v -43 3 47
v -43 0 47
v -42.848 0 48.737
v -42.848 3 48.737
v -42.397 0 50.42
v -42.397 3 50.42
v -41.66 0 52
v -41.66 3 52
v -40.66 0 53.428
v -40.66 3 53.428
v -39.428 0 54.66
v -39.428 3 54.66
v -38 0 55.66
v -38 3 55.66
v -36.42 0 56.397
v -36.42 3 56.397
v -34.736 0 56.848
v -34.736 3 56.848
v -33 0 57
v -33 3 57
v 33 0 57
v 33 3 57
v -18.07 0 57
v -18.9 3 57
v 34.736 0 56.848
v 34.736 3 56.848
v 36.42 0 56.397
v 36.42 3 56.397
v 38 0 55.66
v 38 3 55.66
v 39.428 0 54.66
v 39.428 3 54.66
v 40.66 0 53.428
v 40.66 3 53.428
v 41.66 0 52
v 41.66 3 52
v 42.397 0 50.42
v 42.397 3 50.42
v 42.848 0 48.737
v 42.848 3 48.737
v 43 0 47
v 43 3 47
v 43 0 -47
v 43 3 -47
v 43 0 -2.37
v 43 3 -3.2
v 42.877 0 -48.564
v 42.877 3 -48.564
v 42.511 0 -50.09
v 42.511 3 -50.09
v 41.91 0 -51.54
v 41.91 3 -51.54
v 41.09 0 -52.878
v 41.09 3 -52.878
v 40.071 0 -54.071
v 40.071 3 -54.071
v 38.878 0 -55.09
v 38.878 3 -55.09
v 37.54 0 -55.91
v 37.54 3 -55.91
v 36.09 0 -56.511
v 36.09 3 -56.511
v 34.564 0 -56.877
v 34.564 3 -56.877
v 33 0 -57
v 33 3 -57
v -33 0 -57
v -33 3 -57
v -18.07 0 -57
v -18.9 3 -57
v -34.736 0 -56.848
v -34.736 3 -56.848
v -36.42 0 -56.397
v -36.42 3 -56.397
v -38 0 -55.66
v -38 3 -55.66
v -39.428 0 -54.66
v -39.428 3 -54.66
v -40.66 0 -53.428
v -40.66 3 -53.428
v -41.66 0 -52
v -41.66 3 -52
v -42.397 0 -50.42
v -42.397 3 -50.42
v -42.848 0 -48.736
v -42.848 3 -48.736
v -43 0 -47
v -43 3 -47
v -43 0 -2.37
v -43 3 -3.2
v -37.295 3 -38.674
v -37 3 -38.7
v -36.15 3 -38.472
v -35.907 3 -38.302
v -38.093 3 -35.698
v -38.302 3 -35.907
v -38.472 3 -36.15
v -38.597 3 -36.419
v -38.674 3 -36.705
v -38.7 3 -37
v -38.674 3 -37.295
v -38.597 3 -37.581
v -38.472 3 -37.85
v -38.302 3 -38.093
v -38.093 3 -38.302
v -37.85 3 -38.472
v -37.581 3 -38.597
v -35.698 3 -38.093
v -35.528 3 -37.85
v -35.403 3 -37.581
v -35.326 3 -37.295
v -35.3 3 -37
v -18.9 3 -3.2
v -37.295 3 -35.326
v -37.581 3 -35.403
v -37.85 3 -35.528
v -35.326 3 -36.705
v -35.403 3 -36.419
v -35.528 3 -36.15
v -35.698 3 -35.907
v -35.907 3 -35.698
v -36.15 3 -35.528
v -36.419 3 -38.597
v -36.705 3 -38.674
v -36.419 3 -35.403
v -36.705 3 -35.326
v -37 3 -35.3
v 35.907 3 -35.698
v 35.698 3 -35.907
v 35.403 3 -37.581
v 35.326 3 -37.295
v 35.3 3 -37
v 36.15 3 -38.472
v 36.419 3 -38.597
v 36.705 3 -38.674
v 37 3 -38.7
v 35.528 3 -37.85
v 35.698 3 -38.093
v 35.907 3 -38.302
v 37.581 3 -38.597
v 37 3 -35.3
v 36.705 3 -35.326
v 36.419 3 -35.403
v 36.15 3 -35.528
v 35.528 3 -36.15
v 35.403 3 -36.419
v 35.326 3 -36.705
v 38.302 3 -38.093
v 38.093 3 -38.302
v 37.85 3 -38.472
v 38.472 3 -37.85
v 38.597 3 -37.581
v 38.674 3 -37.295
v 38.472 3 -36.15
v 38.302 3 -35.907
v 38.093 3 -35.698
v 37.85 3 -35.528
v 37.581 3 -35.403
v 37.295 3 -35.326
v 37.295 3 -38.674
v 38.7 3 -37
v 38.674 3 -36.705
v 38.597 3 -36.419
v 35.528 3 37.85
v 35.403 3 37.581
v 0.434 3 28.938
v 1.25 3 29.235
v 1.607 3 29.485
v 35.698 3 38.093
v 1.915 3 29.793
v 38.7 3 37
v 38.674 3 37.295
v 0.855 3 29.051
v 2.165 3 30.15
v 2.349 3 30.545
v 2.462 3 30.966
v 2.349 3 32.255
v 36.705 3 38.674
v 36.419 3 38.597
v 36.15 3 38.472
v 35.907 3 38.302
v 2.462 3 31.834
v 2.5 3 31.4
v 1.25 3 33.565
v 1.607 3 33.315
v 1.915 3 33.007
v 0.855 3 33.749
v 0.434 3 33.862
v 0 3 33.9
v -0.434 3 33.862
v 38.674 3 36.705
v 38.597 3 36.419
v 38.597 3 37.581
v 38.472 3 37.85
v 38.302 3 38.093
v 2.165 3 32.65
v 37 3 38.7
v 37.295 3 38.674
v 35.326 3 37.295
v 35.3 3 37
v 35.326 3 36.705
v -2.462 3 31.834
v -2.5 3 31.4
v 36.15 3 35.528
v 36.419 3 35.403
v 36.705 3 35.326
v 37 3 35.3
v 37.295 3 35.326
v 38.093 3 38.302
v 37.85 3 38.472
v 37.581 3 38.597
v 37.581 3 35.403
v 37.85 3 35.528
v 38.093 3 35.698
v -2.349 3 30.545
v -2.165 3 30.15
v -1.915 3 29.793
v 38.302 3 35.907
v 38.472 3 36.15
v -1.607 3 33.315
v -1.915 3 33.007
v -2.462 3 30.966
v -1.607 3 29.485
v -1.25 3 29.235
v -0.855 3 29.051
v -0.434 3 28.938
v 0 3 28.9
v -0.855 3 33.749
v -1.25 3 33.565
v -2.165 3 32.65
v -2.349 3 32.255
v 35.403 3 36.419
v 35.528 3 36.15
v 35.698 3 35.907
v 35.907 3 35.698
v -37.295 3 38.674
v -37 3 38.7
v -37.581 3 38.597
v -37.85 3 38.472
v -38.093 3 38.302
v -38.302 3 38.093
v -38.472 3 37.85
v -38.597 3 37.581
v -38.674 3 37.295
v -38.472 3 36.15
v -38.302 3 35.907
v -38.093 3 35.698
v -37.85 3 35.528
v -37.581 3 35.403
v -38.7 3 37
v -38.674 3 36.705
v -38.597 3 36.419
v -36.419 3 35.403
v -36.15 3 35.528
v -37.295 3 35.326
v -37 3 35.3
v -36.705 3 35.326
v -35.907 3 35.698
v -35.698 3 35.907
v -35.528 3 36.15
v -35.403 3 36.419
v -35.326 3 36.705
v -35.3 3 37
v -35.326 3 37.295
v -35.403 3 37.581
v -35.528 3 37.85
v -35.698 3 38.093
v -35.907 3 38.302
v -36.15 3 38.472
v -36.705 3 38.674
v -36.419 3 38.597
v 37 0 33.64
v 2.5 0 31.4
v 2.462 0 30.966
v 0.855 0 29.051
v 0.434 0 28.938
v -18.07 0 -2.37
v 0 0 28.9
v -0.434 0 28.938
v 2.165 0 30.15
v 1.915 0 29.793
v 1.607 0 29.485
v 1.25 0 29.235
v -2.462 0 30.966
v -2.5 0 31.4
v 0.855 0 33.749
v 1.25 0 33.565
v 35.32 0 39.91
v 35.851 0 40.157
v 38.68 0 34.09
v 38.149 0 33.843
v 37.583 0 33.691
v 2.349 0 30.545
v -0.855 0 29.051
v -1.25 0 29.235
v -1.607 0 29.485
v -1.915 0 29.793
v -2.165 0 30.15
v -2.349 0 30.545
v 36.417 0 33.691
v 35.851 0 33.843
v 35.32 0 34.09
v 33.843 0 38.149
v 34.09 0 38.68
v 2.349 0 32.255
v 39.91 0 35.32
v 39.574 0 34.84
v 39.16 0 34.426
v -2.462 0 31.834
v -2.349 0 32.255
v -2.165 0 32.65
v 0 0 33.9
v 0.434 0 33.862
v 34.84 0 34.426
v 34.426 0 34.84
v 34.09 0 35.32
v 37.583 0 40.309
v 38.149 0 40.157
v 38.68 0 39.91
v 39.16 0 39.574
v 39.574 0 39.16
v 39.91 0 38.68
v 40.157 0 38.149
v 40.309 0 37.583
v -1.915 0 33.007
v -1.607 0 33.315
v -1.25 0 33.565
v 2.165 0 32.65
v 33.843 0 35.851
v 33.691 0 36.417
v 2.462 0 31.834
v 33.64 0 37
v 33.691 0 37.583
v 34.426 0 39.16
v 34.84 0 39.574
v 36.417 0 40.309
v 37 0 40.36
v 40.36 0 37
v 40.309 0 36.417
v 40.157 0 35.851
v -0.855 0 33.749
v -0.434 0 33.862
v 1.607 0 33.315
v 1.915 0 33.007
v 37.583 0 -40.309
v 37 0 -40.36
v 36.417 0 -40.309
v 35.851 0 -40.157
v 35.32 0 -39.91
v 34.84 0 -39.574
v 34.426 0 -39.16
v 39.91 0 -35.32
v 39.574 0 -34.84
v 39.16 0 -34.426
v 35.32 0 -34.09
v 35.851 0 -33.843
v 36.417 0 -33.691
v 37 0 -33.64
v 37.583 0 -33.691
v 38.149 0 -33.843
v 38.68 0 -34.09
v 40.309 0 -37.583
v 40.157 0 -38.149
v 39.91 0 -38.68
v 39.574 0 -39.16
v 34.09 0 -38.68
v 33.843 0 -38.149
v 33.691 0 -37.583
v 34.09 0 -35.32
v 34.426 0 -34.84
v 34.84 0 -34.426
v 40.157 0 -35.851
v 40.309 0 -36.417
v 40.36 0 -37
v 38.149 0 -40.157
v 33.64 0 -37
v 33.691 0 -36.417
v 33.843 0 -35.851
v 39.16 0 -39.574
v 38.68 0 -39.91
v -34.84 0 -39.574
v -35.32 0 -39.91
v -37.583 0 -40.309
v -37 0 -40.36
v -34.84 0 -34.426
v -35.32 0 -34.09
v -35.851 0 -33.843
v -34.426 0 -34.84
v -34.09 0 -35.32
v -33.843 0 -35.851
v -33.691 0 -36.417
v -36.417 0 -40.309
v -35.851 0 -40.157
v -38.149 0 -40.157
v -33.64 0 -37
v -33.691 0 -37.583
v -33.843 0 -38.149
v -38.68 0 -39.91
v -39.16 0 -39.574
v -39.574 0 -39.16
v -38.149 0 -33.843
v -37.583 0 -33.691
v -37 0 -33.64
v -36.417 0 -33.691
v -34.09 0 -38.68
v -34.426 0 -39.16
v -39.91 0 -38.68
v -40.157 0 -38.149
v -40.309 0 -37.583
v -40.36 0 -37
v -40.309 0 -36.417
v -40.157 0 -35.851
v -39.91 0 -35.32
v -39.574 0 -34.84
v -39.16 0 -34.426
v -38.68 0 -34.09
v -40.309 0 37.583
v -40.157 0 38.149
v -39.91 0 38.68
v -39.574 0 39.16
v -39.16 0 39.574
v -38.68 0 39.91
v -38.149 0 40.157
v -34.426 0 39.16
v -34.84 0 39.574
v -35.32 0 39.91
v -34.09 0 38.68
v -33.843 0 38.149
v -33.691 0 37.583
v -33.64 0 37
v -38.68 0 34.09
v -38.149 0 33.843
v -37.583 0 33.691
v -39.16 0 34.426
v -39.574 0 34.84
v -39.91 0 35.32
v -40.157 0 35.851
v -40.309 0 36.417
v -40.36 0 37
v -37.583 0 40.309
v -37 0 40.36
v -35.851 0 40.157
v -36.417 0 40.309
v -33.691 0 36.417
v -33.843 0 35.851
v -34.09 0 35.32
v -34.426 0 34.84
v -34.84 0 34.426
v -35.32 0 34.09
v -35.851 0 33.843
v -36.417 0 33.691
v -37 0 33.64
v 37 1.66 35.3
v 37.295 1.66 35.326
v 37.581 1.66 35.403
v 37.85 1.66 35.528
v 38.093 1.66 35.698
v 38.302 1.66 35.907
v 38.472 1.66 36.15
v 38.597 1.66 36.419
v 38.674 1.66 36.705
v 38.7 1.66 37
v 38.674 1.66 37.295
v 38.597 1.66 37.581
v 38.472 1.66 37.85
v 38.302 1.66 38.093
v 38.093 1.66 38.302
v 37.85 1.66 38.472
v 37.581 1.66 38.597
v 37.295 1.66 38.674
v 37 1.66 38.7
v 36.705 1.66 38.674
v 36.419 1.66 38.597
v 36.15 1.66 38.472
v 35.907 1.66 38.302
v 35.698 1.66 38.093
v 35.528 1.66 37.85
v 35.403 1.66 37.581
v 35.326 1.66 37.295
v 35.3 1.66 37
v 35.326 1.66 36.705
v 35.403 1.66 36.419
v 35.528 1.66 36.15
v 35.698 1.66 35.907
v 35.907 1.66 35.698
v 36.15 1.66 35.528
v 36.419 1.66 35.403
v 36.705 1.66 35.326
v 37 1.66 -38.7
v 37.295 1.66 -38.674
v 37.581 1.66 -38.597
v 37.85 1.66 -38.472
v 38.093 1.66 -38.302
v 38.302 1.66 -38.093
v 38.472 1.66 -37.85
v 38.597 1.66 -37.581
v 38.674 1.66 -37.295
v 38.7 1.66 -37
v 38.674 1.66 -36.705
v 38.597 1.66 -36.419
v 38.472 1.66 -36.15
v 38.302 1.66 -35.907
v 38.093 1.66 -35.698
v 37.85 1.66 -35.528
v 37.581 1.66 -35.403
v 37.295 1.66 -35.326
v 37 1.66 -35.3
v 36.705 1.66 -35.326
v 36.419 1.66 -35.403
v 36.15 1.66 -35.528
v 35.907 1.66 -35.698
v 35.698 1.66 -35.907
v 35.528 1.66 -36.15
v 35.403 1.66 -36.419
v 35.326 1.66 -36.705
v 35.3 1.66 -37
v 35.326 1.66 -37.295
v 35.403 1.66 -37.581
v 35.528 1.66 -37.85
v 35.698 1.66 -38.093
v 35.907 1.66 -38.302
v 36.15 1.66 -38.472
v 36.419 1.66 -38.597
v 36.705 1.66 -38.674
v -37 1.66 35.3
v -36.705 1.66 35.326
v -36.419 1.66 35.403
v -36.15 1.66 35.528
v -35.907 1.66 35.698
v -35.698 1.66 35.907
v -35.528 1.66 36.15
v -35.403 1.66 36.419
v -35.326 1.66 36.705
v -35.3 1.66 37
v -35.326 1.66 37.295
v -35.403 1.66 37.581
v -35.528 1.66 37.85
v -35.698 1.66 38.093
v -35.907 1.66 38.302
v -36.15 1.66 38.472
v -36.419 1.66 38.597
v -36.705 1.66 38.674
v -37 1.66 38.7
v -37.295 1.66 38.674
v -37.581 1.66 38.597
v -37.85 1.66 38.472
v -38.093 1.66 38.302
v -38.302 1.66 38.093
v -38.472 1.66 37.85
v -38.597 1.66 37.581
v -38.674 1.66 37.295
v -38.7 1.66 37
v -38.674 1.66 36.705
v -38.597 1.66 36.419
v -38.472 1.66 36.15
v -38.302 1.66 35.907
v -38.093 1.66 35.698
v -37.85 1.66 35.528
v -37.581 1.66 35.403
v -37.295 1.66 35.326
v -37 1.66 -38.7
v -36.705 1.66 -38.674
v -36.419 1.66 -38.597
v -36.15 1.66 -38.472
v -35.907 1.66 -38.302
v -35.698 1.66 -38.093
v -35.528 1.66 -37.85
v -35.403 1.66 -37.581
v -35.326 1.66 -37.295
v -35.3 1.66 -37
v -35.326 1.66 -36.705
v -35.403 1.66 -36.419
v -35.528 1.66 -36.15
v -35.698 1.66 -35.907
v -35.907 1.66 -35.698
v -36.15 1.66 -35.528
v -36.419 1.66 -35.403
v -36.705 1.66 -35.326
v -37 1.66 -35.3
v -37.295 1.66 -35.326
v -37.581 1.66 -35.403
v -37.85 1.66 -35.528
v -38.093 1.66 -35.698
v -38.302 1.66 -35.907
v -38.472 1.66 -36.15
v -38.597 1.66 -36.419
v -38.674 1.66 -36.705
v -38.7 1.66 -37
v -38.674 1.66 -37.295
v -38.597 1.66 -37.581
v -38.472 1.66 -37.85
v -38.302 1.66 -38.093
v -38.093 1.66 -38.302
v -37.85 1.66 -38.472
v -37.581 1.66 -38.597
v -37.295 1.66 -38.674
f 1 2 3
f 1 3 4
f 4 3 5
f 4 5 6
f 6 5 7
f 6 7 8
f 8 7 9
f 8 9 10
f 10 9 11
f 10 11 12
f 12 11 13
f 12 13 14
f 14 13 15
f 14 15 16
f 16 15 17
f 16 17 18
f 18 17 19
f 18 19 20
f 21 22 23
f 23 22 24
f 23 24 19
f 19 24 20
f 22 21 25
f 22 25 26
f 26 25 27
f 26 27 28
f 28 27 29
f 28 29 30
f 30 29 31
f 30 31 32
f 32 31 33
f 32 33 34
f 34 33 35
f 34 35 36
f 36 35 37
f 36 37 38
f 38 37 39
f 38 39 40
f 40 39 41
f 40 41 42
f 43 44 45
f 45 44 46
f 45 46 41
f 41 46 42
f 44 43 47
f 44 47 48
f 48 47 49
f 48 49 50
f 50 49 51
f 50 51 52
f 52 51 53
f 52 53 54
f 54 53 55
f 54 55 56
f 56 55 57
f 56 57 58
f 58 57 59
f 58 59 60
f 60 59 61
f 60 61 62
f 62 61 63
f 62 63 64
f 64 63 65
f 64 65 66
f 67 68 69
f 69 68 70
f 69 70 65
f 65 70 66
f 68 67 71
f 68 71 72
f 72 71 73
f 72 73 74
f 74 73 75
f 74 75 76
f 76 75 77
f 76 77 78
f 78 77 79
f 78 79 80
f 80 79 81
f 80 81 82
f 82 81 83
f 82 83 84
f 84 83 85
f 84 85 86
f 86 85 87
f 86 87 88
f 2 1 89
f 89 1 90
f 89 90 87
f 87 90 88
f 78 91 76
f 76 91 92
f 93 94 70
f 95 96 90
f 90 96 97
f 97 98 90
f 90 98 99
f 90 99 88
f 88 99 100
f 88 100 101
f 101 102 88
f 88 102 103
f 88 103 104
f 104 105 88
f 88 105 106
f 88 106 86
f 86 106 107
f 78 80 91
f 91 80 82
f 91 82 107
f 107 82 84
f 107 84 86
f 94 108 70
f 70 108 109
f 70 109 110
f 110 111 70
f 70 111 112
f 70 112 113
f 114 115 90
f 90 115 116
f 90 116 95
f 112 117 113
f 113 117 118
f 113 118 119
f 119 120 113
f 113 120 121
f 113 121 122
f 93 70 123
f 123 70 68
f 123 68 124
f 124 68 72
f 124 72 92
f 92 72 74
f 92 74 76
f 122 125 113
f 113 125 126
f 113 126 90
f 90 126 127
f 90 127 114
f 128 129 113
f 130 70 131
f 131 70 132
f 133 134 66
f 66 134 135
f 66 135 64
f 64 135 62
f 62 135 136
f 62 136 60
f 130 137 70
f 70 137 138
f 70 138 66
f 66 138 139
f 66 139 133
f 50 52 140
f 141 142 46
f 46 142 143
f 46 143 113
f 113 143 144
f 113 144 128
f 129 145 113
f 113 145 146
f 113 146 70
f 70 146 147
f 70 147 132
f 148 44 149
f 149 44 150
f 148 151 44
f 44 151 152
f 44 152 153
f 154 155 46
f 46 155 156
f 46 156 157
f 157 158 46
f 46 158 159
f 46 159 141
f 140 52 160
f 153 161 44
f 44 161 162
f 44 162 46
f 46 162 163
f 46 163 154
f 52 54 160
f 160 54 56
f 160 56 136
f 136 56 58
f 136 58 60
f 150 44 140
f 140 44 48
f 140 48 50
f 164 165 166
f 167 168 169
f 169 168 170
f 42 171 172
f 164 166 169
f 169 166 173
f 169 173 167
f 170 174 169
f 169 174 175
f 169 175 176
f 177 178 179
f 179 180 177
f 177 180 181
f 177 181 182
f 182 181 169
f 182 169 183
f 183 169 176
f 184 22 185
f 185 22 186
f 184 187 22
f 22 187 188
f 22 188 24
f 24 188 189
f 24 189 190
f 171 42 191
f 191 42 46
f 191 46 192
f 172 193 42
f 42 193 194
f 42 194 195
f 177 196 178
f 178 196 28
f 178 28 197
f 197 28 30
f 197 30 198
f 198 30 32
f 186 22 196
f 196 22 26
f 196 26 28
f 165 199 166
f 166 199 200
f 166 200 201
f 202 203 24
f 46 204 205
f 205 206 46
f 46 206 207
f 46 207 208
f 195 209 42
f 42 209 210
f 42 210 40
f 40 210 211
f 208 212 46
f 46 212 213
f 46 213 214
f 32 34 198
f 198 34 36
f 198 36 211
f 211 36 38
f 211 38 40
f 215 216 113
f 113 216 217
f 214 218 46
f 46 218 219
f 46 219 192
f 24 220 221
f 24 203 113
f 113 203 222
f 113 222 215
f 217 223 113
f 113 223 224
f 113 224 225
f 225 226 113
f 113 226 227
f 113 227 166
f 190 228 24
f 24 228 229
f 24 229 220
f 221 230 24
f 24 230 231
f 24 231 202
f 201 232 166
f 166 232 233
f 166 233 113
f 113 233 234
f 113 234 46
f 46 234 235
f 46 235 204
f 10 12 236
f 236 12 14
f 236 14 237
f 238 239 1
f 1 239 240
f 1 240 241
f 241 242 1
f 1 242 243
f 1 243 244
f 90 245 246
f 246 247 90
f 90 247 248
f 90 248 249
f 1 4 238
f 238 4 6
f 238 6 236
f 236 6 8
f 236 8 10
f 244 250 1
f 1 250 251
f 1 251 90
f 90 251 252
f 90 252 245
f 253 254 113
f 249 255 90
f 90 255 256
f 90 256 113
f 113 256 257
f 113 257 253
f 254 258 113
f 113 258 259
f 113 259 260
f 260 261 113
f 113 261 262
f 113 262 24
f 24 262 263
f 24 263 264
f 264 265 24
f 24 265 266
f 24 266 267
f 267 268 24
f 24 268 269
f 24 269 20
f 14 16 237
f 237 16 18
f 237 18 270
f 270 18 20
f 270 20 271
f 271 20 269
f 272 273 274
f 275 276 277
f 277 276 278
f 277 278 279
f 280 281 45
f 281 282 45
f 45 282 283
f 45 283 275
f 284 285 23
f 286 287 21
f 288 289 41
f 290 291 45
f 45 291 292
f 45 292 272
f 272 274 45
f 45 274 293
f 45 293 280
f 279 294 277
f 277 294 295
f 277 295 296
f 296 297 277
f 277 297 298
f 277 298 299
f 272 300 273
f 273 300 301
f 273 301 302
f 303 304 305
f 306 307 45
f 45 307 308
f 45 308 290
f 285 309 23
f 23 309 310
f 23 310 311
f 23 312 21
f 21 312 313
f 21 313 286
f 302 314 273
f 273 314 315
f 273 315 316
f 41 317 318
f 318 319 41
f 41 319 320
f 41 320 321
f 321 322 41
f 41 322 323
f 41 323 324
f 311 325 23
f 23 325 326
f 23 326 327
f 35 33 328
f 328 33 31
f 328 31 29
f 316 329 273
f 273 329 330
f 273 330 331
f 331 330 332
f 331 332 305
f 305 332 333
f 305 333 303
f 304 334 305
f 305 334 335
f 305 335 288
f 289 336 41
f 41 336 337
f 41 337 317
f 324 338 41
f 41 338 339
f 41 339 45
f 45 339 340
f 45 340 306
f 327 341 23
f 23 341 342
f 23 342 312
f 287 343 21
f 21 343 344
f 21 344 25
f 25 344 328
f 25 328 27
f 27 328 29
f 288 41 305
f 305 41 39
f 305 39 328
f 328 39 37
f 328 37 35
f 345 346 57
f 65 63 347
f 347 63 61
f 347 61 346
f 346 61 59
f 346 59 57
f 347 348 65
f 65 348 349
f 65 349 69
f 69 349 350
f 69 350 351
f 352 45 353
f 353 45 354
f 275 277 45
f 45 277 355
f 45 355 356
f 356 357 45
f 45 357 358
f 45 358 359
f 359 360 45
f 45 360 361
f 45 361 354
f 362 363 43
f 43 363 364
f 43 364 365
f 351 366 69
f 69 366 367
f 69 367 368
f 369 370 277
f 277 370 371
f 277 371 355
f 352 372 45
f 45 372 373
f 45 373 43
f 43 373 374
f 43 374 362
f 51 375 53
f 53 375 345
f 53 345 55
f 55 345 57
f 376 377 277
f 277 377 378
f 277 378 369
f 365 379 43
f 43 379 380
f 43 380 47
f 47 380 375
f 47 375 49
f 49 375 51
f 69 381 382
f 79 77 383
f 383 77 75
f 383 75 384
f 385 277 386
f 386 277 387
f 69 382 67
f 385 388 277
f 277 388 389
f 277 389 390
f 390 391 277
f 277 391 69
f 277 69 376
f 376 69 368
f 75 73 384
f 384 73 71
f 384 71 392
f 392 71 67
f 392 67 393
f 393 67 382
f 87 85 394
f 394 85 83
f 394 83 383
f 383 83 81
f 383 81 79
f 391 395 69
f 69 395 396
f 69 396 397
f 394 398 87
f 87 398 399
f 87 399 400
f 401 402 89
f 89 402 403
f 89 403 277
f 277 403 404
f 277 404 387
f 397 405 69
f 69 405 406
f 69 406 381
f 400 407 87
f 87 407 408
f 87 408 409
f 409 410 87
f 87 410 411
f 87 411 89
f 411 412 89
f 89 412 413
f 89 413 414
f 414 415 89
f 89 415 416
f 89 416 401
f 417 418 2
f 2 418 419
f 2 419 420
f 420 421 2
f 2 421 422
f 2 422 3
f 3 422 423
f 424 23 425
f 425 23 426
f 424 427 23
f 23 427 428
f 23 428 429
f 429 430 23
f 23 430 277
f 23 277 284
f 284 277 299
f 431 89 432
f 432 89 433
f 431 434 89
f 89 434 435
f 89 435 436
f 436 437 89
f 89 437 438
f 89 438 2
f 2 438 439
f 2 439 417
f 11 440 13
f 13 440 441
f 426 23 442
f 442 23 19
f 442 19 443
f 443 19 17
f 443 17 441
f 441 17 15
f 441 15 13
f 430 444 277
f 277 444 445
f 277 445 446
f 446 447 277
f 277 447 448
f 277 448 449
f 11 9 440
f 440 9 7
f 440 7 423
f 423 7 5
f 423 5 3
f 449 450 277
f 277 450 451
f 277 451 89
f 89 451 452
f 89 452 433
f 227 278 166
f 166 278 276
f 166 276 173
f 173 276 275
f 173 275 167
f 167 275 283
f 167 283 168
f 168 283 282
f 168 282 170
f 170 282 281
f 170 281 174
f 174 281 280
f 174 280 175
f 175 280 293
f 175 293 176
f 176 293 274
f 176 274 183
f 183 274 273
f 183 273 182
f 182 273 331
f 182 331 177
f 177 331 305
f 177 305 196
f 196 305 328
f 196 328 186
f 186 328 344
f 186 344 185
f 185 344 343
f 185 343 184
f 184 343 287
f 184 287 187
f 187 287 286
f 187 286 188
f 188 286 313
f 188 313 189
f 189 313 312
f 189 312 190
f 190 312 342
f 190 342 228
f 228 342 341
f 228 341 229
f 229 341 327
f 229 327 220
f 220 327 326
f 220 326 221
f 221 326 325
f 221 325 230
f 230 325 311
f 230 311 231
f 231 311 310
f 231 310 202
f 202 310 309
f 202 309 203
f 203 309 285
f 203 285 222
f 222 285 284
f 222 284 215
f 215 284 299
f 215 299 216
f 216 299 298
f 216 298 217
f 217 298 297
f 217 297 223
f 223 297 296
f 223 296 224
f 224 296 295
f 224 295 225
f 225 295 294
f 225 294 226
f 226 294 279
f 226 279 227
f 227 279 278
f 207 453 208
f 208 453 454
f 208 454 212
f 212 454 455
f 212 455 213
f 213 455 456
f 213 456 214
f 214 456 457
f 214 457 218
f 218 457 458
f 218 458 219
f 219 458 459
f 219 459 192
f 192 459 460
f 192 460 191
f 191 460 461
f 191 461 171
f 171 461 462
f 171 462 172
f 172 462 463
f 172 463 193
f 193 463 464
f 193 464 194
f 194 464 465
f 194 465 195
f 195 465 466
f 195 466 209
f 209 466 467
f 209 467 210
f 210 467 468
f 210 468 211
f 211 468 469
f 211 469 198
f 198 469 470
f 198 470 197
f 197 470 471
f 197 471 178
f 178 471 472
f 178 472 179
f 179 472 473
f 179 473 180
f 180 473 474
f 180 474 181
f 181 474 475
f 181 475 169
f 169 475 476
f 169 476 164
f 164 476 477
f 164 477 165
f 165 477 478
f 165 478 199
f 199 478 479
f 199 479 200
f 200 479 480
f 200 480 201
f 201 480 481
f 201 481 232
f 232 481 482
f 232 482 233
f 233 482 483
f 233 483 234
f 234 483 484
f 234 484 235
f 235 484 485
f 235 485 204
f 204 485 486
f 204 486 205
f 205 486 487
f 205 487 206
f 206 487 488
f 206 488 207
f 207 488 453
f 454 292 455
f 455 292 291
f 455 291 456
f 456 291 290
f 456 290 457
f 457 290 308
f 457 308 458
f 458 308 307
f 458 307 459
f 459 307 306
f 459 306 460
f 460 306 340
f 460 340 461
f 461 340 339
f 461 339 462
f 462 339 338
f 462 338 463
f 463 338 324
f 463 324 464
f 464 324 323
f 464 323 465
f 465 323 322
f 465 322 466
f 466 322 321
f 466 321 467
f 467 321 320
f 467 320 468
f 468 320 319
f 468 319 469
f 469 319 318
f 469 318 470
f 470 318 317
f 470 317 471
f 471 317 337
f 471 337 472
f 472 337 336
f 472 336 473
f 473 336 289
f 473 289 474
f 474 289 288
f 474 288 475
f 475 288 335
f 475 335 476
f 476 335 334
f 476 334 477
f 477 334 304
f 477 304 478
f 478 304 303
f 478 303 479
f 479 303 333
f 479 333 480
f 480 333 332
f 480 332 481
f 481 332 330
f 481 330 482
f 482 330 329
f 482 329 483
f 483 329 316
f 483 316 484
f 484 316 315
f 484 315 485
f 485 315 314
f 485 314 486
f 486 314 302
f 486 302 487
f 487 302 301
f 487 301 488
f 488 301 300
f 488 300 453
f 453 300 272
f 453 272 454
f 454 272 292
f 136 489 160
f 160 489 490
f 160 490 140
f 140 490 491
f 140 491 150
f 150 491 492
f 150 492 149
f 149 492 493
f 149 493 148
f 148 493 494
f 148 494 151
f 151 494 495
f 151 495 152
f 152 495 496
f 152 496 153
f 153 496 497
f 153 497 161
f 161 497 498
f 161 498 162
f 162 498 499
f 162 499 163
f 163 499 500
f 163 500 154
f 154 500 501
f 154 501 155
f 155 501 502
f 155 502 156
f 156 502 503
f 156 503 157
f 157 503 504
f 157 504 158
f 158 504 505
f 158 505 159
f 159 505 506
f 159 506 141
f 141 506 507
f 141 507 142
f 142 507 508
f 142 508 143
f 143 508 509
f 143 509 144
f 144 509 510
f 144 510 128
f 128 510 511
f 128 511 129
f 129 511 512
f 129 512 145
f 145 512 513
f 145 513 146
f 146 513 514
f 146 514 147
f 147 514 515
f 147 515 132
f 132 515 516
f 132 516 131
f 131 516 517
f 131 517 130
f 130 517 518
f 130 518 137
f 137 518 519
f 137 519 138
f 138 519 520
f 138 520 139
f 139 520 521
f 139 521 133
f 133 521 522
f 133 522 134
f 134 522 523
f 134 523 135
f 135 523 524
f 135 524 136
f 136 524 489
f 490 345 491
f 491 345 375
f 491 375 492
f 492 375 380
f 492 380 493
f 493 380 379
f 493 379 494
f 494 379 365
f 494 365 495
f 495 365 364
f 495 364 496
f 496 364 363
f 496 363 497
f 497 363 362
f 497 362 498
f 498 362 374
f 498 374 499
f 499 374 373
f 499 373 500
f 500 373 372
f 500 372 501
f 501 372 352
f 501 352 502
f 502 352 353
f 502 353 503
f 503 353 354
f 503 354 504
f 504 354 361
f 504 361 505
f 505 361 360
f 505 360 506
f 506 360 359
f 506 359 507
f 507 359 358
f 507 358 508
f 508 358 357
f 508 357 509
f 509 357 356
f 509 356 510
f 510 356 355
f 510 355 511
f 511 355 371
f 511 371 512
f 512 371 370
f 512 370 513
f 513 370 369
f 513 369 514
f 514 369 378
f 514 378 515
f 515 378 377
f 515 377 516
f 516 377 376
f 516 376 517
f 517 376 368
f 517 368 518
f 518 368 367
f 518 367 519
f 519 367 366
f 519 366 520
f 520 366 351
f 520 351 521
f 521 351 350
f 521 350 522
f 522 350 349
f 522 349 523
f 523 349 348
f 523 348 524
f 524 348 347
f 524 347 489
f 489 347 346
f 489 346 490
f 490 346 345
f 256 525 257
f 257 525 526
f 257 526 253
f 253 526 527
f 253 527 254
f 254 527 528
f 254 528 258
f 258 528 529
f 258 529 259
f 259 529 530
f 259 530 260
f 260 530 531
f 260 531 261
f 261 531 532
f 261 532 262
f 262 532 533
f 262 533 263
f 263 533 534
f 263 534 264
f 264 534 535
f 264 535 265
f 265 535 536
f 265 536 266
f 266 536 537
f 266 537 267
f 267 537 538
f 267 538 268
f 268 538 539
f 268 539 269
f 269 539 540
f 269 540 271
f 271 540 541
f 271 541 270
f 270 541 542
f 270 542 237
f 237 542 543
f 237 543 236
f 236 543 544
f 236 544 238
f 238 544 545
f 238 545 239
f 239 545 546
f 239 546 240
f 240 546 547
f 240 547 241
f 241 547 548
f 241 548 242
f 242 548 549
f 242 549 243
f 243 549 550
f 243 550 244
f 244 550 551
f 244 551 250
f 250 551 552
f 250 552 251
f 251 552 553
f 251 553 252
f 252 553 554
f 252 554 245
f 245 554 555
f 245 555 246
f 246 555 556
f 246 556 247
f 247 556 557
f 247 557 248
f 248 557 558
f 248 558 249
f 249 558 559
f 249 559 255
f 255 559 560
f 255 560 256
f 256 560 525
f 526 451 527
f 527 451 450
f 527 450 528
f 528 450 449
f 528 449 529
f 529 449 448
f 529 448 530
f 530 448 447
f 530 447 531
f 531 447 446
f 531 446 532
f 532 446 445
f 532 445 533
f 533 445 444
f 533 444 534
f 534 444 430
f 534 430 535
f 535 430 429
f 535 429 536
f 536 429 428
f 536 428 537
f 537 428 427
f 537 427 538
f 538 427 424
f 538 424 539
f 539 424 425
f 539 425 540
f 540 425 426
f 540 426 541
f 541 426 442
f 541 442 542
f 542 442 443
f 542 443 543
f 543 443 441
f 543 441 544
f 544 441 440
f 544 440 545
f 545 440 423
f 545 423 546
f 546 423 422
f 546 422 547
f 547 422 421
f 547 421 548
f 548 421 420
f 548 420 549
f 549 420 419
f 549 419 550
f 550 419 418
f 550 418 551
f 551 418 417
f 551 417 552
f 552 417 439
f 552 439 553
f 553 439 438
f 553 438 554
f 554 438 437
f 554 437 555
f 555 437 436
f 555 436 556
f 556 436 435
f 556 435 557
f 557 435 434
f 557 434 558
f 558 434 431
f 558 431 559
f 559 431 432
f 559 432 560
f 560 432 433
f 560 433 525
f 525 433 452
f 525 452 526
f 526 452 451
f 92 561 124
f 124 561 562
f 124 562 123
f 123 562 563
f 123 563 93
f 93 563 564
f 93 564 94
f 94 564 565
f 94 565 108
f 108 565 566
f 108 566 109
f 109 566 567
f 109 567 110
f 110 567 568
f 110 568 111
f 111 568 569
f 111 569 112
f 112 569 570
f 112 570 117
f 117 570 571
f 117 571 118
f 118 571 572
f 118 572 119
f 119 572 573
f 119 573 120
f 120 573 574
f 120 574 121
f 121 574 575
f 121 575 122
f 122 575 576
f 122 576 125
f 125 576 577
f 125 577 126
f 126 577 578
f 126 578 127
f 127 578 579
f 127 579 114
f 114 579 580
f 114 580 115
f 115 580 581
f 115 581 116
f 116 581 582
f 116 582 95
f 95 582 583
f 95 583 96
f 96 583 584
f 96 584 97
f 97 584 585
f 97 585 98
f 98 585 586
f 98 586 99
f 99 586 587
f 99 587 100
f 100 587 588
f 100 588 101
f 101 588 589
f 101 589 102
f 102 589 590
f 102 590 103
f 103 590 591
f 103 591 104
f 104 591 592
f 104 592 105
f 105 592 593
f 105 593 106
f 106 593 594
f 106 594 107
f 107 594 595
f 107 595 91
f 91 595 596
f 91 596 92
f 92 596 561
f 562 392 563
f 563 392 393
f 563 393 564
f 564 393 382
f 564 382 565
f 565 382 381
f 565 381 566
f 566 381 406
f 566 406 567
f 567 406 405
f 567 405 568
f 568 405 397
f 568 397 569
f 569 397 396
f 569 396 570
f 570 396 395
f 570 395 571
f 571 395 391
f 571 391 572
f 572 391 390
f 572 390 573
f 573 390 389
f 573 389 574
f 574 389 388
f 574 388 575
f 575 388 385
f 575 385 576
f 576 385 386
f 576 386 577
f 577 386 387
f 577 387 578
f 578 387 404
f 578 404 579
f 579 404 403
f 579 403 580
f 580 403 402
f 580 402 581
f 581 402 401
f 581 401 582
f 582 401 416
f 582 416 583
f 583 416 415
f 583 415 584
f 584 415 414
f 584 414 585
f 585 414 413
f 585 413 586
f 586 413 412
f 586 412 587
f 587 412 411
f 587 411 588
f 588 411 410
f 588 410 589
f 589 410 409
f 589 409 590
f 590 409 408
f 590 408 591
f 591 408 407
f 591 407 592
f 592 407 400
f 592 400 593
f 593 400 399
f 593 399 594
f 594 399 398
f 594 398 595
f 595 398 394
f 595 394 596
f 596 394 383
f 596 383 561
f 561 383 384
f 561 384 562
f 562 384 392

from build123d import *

# Parameters (mm, degrees)
BOSS_EXTRUDE1_DEPTH                                  = 3
SKETCH3_R                                            = 2.5
CUT_EXTRUDE1_DEPTH                                   = 3
CSK_FOR_M3_HEX_SOCKET_COUNTERSUNK_CAP_SC_D           = 3.4
CSK_FOR_M3_HEX_SOCKET_COUNTERSUNK_CAP_SC_DEPTH       = 20
CSK_FOR_M3_HEX_SOCKET_COUNTERSUNK_CAP_SC_CSINK_D     = 6.72
CSK_FOR_M3_HEX_SOCKET_COUNTERSUNK_CAP_SC_CSINK_ANGLE = 90
CSK_FOR_M3_HEX_SOCKET_COUNTERSUNK_CAP_SC_TIP         = 1.021463052


with BuildPart() as part:
    # Sketch1 → Boss-Extrude1 (new body)
    with BuildSketch(Plane(origin=(0, 0, 0), x_dir=(1, 0, 0), z_dir=(0, 1, 0))):
        with BuildLine():
            Line((33, -57), (-33, -57))
            ThreePointArc((-33, -57), (-40.071067812, -54.071067812), (-43, -47))
            Line((-43, -47), (-43, 47))
            ThreePointArc((-43, 47), (-40.071067812, 54.071067812), (-33, 57))
            Line((-33, 57), (33, 57))
            ThreePointArc((33, 57), (40.071067812, 54.071067812), (43, 47))
            Line((43, 47), (43, -47))
            ThreePointArc((43, -47), (40.071067812, -54.071067812), (33, -57))
        make_face()
    extrude(amount=BOSS_EXTRUDE1_DEPTH)

    # Sketch3 → Cut-Extrude1 (cut)
    with BuildSketch(Plane.XZ):
        with Locations(Location((0, 31.4, 0), (0, 0, 270))):
            Circle(SKETCH3_R)
    extrude(amount=-CUT_EXTRUDE1_DEPTH, mode=Mode.SUBTRACT)

    # CSK for M3 Hex Socket Countersunk Cap Screw1
    with Locations(Plane(origin=(0, 0, 0), x_dir=(-1, 0, 0), z_dir=(0, -1, 0))):
        with Locations((37, 37), (37, -37), (-37, 37), (-37, -37)):
            CounterSinkHole(CSK_FOR_M3_HEX_SOCKET_COUNTERSUNK_CAP_SC_D / 2, CSK_FOR_M3_HEX_SOCKET_COUNTERSUNK_CAP_SC_CSINK_D / 2, depth=CSK_FOR_M3_HEX_SOCKET_COUNTERSUNK_CAP_SC_DEPTH, counter_sink_angle=CSK_FOR_M3_HEX_SOCKET_COUNTERSUNK_CAP_SC_CSINK_ANGLE)
            with Locations((0, 0, -(CSK_FOR_M3_HEX_SOCKET_COUNTERSUNK_CAP_SC_DEPTH + CSK_FOR_M3_HEX_SOCKET_COUNTERSUNK_CAP_SC_TIP / 2))):  # 118° drill point
                Cone(0, CSK_FOR_M3_HEX_SOCKET_COUNTERSUNK_CAP_SC_D / 2, CSK_FOR_M3_HEX_SOCKET_COUNTERSUNK_CAP_SC_TIP, mode=Mode.SUBTRACT)


solid = part.part
